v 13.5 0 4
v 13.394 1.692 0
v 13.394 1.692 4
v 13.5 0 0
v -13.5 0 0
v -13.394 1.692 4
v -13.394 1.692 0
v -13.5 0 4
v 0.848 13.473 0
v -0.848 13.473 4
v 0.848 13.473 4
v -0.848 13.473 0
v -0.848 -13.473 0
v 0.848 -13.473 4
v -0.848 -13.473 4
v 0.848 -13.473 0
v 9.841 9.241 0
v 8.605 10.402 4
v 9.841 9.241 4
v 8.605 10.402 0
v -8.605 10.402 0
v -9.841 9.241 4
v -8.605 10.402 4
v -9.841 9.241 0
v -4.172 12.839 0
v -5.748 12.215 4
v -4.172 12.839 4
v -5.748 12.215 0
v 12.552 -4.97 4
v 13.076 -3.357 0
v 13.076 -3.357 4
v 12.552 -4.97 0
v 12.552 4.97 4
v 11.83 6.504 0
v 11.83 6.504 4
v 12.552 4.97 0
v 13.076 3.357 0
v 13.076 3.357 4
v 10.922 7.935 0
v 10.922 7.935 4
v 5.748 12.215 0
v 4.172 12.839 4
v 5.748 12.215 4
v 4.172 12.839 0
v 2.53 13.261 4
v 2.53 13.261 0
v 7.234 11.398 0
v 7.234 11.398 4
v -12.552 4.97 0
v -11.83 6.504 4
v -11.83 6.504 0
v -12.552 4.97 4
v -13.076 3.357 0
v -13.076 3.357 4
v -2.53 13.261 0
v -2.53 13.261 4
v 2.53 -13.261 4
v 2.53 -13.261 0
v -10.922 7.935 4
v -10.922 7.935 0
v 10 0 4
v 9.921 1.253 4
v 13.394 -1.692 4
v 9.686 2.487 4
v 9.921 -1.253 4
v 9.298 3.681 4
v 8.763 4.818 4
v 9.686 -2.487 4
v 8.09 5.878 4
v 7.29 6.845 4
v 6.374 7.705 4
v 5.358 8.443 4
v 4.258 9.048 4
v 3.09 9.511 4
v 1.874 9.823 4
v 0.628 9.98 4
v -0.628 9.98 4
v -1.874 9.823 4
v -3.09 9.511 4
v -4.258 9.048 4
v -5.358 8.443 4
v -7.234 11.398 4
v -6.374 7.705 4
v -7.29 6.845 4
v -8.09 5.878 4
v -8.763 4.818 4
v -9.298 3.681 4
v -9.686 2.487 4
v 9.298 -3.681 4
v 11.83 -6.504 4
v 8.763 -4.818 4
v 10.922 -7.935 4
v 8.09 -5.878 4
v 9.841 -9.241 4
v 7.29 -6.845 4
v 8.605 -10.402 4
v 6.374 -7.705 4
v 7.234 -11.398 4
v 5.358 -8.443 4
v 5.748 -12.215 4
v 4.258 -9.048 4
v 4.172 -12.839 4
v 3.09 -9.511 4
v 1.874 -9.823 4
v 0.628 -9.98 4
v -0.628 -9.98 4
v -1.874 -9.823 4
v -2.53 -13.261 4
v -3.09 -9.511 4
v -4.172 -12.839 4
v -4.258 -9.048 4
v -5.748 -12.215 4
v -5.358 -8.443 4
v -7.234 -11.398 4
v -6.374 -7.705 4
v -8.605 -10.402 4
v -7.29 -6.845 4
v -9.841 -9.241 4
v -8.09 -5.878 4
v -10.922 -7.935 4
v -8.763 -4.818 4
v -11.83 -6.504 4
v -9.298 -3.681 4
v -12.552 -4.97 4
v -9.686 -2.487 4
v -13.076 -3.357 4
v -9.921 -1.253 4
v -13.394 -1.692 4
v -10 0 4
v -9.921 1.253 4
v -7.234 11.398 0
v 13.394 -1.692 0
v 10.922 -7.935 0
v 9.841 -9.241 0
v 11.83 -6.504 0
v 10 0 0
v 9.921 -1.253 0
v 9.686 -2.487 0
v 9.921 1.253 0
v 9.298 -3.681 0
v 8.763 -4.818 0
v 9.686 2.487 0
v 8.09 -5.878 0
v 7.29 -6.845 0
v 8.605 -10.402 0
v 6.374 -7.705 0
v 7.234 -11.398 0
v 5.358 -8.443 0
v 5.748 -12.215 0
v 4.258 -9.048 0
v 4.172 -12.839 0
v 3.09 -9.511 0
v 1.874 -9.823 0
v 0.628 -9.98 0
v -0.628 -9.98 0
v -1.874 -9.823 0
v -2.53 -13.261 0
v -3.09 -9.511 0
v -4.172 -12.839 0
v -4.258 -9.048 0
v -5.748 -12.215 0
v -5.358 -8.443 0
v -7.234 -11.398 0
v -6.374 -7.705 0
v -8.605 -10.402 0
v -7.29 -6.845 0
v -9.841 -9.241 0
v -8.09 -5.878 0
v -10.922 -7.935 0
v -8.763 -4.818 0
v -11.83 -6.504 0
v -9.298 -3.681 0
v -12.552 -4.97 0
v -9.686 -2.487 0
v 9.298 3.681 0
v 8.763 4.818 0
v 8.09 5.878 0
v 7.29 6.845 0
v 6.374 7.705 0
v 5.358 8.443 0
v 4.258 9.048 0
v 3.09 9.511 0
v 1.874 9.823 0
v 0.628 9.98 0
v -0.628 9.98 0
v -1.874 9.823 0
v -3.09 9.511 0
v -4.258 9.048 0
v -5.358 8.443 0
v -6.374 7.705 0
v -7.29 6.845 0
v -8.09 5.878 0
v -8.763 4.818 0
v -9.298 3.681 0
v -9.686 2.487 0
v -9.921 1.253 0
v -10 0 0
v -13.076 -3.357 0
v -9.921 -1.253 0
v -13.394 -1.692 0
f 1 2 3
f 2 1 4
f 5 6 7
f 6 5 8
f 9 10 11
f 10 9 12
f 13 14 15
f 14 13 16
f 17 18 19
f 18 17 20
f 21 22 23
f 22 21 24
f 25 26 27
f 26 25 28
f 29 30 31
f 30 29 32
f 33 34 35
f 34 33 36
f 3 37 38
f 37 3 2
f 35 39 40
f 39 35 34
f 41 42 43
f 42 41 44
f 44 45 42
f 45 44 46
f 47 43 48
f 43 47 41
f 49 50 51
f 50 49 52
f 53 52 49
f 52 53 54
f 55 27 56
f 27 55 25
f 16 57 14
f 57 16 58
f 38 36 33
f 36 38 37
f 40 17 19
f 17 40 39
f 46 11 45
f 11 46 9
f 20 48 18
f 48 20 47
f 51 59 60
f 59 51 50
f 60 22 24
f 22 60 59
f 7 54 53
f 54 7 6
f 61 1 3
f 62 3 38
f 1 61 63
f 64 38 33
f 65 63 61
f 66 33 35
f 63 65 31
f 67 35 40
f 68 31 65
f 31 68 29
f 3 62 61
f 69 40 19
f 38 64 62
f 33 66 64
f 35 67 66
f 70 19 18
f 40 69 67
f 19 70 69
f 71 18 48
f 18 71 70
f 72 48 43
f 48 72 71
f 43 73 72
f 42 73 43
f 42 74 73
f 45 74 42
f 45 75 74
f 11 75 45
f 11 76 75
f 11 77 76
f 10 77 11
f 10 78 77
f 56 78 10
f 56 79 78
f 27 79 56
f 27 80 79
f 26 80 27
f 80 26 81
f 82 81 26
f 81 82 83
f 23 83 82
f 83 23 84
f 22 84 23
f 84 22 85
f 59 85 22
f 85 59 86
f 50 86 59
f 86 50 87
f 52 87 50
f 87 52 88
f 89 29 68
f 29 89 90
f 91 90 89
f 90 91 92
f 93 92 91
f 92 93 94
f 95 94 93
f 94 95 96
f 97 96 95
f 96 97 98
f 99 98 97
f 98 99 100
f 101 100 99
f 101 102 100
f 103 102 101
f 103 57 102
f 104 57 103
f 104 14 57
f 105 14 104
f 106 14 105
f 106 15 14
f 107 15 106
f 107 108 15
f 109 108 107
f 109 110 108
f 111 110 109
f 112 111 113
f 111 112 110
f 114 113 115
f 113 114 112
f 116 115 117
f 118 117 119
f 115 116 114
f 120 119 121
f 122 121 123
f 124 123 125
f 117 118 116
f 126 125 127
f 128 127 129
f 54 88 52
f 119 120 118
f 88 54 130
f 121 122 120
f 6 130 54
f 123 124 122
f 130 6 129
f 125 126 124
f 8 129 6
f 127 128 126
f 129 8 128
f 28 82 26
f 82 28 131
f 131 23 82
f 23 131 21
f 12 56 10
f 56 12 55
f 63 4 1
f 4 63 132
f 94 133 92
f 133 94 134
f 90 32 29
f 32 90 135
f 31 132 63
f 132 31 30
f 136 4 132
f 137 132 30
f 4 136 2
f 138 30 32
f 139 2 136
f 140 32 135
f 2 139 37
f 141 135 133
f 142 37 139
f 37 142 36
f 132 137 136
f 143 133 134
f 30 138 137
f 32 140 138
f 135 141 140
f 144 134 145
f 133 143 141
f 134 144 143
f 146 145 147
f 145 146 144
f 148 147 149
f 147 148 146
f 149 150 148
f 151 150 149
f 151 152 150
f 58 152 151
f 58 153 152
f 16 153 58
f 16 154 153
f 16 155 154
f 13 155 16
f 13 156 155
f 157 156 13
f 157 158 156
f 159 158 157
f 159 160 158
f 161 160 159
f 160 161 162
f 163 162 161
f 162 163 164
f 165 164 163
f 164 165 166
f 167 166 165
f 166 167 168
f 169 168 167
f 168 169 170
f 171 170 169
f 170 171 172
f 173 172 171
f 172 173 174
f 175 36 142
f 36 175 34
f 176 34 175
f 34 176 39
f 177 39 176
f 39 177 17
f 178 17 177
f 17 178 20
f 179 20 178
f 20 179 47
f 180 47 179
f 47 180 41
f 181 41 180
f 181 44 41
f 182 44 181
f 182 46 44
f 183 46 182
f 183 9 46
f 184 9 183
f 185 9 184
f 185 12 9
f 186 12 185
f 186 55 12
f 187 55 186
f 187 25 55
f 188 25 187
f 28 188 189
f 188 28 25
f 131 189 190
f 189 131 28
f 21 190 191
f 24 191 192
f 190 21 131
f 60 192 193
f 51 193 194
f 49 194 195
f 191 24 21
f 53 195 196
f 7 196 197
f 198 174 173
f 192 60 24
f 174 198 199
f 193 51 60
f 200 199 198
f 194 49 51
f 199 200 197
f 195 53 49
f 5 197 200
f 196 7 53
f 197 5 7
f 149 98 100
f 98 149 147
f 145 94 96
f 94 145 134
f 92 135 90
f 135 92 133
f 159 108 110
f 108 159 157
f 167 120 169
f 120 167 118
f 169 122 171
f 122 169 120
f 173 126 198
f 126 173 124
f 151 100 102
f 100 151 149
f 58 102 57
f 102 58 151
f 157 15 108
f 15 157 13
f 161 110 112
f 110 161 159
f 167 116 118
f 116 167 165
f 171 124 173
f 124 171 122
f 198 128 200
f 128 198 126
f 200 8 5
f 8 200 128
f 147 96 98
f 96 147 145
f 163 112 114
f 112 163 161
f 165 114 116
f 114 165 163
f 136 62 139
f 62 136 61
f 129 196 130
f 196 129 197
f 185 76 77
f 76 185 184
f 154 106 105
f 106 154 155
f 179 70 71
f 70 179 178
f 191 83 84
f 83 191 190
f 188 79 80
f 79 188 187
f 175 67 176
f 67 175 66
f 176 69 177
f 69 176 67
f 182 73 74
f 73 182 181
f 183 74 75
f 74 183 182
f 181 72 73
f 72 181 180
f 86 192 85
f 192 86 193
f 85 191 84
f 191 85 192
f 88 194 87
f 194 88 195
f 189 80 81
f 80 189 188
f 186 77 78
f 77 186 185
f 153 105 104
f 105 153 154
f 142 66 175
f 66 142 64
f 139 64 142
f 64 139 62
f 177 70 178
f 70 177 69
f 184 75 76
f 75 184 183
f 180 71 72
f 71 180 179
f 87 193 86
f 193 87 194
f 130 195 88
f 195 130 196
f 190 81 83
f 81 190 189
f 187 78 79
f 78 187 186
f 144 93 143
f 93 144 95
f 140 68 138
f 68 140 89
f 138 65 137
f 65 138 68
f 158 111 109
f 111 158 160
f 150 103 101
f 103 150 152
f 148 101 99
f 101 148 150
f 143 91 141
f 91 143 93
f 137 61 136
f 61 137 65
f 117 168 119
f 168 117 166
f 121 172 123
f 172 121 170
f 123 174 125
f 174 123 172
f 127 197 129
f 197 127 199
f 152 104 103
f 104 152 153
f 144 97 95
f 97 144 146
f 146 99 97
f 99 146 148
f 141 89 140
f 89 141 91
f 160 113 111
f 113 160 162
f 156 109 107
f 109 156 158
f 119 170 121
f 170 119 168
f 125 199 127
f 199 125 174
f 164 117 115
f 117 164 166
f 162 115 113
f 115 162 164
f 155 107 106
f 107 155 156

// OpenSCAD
$fn = 50;


difference() {
	union() {
		cylinder(h = 4, r = 13.5000000000);
	}
	union() {
		cylinder(h = 4, r = 10.0000000000);
	}
}
